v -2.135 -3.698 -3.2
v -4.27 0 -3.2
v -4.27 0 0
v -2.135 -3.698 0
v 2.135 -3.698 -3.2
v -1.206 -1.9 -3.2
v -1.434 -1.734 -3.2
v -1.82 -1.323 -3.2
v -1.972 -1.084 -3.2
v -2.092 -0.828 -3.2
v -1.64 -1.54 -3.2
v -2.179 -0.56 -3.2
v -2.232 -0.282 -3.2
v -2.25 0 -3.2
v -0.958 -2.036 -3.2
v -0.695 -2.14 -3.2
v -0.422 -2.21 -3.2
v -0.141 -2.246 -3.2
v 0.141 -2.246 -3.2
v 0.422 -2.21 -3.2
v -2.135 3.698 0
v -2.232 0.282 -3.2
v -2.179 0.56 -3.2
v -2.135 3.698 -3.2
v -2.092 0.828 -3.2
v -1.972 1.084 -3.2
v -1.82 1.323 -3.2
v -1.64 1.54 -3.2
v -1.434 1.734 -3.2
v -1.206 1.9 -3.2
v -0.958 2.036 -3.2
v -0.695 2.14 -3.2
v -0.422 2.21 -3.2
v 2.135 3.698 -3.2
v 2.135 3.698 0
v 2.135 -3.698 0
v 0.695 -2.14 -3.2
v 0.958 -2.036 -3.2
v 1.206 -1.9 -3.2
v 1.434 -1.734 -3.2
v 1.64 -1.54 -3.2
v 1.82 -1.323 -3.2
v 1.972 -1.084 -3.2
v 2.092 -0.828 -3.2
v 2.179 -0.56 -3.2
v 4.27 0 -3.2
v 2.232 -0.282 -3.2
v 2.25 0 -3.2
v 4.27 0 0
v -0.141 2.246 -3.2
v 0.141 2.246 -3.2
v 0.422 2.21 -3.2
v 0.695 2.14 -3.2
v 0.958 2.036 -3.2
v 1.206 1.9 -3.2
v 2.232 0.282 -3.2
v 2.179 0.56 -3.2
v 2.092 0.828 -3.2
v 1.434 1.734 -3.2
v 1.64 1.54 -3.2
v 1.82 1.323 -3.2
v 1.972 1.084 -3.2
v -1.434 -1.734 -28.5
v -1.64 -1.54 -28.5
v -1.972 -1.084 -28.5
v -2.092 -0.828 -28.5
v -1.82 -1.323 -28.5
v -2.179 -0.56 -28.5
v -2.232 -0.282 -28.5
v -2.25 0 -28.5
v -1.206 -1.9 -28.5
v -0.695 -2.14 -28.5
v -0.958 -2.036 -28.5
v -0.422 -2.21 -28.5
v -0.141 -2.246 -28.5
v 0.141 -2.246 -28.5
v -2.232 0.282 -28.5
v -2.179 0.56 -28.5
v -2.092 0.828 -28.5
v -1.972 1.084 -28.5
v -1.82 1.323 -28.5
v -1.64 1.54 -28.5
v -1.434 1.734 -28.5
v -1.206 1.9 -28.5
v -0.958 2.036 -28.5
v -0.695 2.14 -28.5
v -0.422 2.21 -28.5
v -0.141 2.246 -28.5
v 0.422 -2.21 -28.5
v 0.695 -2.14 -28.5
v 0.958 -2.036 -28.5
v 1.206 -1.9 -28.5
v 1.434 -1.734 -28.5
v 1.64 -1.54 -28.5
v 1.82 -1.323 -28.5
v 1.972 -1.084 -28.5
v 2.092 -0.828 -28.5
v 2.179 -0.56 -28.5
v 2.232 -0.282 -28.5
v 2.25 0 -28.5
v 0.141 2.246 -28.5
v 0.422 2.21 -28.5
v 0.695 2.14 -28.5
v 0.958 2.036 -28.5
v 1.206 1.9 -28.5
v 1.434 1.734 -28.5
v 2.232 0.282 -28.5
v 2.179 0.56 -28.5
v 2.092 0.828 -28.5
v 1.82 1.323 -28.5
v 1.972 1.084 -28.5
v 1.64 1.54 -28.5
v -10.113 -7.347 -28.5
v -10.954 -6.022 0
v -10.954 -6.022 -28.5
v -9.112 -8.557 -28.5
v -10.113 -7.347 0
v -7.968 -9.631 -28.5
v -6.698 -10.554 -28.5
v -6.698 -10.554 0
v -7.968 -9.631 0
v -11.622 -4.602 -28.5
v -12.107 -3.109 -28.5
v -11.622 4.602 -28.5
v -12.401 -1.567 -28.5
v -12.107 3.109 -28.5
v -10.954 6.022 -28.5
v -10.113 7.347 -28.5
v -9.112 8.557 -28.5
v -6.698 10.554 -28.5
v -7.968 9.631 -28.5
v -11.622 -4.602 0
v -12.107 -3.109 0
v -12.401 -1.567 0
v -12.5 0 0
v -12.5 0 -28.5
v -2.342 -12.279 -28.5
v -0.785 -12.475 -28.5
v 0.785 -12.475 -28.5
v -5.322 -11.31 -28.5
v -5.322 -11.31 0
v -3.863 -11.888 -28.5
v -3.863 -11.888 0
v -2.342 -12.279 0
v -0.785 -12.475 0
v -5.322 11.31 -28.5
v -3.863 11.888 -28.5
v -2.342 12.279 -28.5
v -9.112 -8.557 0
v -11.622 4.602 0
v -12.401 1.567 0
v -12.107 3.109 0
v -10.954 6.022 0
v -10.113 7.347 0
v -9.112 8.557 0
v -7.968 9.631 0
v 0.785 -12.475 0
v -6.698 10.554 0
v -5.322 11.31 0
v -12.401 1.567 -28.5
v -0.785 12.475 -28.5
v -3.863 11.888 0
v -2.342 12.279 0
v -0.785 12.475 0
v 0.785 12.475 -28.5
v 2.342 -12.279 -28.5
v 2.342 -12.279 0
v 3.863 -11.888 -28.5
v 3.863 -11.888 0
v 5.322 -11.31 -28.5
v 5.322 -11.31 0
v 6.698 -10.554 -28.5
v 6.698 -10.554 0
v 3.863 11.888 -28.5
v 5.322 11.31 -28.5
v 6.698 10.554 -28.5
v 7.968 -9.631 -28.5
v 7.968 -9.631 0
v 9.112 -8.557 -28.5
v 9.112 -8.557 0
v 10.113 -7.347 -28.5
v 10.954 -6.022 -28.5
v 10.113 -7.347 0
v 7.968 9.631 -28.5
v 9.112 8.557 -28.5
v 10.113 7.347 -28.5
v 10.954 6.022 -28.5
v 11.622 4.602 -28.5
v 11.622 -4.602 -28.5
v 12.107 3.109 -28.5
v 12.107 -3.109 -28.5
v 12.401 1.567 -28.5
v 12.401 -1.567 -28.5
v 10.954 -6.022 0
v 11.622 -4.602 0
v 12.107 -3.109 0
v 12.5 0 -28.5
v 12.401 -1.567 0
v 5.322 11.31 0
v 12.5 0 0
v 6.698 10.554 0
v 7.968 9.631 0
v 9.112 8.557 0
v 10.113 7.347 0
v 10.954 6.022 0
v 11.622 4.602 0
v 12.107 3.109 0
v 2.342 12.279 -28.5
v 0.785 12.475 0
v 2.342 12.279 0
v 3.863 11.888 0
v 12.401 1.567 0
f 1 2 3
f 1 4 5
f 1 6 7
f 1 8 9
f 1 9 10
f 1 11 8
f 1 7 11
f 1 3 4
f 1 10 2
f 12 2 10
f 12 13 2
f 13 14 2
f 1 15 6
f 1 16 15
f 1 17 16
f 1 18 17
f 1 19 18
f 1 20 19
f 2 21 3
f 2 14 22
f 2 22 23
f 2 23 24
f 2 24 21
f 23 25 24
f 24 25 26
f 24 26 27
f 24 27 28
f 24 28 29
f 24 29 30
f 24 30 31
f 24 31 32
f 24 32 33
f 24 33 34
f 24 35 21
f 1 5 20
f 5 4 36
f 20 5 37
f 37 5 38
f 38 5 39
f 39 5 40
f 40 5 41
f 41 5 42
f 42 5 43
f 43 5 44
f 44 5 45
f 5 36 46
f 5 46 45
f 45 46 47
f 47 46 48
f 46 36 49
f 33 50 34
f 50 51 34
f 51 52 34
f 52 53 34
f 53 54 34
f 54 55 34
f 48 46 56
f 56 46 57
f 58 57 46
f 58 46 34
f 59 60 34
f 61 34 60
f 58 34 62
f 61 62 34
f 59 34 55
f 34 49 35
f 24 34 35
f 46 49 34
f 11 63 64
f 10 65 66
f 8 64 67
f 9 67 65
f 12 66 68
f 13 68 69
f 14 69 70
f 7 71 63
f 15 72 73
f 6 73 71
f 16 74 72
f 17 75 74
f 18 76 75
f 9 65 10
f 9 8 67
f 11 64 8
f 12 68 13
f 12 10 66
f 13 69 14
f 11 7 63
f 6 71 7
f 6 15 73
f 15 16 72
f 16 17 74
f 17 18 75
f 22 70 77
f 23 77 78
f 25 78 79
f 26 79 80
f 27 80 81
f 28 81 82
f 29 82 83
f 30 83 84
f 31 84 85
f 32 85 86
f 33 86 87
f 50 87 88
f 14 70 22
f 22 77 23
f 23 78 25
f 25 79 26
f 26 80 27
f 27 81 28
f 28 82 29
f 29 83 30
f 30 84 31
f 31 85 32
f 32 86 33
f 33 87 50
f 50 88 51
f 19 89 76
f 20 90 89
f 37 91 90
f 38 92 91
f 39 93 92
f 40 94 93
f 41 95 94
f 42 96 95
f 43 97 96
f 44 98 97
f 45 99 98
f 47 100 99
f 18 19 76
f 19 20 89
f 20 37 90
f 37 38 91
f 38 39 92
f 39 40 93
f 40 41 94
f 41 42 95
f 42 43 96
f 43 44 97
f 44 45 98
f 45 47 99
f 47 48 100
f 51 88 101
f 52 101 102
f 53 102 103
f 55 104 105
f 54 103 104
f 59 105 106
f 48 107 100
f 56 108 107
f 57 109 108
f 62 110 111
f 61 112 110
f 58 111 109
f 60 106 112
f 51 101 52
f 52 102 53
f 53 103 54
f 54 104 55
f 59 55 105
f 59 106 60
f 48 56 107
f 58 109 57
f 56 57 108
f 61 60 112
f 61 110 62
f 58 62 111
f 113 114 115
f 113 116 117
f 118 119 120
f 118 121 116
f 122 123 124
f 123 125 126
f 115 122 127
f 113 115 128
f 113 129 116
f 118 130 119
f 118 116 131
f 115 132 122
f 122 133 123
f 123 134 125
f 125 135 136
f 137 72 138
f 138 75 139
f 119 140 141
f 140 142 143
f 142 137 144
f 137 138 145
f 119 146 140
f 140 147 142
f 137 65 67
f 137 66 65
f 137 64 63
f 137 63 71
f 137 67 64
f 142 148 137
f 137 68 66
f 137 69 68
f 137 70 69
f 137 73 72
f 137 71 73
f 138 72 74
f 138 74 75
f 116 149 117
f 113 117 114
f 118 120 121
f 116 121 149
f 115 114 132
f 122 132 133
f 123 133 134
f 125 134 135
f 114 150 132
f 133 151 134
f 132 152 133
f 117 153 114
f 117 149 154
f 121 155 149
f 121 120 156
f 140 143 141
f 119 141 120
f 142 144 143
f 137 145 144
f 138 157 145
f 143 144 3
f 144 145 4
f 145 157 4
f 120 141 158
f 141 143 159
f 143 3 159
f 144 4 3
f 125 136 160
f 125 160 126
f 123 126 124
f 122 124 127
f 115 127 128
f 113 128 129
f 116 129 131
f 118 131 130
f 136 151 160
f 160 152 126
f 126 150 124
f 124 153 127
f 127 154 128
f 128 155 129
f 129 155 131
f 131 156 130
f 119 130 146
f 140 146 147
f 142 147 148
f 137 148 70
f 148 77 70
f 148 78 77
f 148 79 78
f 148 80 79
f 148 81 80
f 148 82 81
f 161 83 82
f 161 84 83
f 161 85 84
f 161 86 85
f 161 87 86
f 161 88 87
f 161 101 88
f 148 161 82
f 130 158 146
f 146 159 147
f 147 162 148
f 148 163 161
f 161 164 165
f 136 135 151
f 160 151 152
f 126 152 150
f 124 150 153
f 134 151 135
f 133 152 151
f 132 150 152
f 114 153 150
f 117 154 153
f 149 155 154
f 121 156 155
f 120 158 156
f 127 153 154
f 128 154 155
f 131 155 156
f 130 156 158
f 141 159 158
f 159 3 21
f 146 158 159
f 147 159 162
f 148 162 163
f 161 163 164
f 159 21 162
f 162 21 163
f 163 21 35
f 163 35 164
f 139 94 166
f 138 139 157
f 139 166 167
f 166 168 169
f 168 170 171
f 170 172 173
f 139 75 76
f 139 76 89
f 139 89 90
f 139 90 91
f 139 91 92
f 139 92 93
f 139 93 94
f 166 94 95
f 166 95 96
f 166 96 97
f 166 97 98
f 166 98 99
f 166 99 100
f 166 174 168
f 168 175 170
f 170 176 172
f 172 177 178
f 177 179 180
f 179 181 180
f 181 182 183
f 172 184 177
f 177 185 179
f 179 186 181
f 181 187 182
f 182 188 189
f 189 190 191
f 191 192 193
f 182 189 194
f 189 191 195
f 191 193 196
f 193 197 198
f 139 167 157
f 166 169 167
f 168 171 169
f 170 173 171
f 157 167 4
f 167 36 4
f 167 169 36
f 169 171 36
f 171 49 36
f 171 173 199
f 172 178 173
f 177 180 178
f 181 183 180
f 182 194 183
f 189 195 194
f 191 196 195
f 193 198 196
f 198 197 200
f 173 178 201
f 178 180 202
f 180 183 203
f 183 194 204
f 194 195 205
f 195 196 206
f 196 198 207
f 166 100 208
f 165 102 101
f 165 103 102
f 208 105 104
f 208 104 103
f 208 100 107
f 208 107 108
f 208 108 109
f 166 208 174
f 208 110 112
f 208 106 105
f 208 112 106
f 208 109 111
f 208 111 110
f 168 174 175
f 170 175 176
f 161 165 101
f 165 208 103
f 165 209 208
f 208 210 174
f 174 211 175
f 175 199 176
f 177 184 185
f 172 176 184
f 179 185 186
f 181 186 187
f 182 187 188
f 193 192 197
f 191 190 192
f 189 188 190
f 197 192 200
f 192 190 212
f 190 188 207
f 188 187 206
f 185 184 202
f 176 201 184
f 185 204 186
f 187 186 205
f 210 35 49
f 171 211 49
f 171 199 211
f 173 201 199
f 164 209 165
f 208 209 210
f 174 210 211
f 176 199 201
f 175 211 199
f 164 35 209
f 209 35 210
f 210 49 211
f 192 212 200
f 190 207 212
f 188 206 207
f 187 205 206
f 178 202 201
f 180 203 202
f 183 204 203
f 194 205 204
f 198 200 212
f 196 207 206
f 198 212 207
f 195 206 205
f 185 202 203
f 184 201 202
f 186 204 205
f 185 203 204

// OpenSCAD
$fn = 50;

difference() {
	union() {
		translate(v = [0, 0, -28.5]) {
			cylinder(h = 28.5, r = 12.5);
		}
	}
	union() {
		translate(v = [0, 0, 0]) {
			rotate(a = [0, 0, 0]) {
				difference() {
					union() {
						translate(v = [0, 0, -3.2]) {
							linear_extrude(height = 3.2) {
								polygon(points = [[4.2698, 0.0], [2.1349000000000005, 3.697755269078796], [-2.134899999999999, 3.6977552690787965], [-4.2698, 5.228996902999369e-16], [-2.134900000000002, -3.6977552690787956], [2.1348999999999974, -3.697755269078798]]);
							}
						}
					}
					union();
				}
			}
		}
		#translate(v = [0, 0, -100.0]) {
			cylinder(h = 200, r = 2.25);
		}
	}
}
